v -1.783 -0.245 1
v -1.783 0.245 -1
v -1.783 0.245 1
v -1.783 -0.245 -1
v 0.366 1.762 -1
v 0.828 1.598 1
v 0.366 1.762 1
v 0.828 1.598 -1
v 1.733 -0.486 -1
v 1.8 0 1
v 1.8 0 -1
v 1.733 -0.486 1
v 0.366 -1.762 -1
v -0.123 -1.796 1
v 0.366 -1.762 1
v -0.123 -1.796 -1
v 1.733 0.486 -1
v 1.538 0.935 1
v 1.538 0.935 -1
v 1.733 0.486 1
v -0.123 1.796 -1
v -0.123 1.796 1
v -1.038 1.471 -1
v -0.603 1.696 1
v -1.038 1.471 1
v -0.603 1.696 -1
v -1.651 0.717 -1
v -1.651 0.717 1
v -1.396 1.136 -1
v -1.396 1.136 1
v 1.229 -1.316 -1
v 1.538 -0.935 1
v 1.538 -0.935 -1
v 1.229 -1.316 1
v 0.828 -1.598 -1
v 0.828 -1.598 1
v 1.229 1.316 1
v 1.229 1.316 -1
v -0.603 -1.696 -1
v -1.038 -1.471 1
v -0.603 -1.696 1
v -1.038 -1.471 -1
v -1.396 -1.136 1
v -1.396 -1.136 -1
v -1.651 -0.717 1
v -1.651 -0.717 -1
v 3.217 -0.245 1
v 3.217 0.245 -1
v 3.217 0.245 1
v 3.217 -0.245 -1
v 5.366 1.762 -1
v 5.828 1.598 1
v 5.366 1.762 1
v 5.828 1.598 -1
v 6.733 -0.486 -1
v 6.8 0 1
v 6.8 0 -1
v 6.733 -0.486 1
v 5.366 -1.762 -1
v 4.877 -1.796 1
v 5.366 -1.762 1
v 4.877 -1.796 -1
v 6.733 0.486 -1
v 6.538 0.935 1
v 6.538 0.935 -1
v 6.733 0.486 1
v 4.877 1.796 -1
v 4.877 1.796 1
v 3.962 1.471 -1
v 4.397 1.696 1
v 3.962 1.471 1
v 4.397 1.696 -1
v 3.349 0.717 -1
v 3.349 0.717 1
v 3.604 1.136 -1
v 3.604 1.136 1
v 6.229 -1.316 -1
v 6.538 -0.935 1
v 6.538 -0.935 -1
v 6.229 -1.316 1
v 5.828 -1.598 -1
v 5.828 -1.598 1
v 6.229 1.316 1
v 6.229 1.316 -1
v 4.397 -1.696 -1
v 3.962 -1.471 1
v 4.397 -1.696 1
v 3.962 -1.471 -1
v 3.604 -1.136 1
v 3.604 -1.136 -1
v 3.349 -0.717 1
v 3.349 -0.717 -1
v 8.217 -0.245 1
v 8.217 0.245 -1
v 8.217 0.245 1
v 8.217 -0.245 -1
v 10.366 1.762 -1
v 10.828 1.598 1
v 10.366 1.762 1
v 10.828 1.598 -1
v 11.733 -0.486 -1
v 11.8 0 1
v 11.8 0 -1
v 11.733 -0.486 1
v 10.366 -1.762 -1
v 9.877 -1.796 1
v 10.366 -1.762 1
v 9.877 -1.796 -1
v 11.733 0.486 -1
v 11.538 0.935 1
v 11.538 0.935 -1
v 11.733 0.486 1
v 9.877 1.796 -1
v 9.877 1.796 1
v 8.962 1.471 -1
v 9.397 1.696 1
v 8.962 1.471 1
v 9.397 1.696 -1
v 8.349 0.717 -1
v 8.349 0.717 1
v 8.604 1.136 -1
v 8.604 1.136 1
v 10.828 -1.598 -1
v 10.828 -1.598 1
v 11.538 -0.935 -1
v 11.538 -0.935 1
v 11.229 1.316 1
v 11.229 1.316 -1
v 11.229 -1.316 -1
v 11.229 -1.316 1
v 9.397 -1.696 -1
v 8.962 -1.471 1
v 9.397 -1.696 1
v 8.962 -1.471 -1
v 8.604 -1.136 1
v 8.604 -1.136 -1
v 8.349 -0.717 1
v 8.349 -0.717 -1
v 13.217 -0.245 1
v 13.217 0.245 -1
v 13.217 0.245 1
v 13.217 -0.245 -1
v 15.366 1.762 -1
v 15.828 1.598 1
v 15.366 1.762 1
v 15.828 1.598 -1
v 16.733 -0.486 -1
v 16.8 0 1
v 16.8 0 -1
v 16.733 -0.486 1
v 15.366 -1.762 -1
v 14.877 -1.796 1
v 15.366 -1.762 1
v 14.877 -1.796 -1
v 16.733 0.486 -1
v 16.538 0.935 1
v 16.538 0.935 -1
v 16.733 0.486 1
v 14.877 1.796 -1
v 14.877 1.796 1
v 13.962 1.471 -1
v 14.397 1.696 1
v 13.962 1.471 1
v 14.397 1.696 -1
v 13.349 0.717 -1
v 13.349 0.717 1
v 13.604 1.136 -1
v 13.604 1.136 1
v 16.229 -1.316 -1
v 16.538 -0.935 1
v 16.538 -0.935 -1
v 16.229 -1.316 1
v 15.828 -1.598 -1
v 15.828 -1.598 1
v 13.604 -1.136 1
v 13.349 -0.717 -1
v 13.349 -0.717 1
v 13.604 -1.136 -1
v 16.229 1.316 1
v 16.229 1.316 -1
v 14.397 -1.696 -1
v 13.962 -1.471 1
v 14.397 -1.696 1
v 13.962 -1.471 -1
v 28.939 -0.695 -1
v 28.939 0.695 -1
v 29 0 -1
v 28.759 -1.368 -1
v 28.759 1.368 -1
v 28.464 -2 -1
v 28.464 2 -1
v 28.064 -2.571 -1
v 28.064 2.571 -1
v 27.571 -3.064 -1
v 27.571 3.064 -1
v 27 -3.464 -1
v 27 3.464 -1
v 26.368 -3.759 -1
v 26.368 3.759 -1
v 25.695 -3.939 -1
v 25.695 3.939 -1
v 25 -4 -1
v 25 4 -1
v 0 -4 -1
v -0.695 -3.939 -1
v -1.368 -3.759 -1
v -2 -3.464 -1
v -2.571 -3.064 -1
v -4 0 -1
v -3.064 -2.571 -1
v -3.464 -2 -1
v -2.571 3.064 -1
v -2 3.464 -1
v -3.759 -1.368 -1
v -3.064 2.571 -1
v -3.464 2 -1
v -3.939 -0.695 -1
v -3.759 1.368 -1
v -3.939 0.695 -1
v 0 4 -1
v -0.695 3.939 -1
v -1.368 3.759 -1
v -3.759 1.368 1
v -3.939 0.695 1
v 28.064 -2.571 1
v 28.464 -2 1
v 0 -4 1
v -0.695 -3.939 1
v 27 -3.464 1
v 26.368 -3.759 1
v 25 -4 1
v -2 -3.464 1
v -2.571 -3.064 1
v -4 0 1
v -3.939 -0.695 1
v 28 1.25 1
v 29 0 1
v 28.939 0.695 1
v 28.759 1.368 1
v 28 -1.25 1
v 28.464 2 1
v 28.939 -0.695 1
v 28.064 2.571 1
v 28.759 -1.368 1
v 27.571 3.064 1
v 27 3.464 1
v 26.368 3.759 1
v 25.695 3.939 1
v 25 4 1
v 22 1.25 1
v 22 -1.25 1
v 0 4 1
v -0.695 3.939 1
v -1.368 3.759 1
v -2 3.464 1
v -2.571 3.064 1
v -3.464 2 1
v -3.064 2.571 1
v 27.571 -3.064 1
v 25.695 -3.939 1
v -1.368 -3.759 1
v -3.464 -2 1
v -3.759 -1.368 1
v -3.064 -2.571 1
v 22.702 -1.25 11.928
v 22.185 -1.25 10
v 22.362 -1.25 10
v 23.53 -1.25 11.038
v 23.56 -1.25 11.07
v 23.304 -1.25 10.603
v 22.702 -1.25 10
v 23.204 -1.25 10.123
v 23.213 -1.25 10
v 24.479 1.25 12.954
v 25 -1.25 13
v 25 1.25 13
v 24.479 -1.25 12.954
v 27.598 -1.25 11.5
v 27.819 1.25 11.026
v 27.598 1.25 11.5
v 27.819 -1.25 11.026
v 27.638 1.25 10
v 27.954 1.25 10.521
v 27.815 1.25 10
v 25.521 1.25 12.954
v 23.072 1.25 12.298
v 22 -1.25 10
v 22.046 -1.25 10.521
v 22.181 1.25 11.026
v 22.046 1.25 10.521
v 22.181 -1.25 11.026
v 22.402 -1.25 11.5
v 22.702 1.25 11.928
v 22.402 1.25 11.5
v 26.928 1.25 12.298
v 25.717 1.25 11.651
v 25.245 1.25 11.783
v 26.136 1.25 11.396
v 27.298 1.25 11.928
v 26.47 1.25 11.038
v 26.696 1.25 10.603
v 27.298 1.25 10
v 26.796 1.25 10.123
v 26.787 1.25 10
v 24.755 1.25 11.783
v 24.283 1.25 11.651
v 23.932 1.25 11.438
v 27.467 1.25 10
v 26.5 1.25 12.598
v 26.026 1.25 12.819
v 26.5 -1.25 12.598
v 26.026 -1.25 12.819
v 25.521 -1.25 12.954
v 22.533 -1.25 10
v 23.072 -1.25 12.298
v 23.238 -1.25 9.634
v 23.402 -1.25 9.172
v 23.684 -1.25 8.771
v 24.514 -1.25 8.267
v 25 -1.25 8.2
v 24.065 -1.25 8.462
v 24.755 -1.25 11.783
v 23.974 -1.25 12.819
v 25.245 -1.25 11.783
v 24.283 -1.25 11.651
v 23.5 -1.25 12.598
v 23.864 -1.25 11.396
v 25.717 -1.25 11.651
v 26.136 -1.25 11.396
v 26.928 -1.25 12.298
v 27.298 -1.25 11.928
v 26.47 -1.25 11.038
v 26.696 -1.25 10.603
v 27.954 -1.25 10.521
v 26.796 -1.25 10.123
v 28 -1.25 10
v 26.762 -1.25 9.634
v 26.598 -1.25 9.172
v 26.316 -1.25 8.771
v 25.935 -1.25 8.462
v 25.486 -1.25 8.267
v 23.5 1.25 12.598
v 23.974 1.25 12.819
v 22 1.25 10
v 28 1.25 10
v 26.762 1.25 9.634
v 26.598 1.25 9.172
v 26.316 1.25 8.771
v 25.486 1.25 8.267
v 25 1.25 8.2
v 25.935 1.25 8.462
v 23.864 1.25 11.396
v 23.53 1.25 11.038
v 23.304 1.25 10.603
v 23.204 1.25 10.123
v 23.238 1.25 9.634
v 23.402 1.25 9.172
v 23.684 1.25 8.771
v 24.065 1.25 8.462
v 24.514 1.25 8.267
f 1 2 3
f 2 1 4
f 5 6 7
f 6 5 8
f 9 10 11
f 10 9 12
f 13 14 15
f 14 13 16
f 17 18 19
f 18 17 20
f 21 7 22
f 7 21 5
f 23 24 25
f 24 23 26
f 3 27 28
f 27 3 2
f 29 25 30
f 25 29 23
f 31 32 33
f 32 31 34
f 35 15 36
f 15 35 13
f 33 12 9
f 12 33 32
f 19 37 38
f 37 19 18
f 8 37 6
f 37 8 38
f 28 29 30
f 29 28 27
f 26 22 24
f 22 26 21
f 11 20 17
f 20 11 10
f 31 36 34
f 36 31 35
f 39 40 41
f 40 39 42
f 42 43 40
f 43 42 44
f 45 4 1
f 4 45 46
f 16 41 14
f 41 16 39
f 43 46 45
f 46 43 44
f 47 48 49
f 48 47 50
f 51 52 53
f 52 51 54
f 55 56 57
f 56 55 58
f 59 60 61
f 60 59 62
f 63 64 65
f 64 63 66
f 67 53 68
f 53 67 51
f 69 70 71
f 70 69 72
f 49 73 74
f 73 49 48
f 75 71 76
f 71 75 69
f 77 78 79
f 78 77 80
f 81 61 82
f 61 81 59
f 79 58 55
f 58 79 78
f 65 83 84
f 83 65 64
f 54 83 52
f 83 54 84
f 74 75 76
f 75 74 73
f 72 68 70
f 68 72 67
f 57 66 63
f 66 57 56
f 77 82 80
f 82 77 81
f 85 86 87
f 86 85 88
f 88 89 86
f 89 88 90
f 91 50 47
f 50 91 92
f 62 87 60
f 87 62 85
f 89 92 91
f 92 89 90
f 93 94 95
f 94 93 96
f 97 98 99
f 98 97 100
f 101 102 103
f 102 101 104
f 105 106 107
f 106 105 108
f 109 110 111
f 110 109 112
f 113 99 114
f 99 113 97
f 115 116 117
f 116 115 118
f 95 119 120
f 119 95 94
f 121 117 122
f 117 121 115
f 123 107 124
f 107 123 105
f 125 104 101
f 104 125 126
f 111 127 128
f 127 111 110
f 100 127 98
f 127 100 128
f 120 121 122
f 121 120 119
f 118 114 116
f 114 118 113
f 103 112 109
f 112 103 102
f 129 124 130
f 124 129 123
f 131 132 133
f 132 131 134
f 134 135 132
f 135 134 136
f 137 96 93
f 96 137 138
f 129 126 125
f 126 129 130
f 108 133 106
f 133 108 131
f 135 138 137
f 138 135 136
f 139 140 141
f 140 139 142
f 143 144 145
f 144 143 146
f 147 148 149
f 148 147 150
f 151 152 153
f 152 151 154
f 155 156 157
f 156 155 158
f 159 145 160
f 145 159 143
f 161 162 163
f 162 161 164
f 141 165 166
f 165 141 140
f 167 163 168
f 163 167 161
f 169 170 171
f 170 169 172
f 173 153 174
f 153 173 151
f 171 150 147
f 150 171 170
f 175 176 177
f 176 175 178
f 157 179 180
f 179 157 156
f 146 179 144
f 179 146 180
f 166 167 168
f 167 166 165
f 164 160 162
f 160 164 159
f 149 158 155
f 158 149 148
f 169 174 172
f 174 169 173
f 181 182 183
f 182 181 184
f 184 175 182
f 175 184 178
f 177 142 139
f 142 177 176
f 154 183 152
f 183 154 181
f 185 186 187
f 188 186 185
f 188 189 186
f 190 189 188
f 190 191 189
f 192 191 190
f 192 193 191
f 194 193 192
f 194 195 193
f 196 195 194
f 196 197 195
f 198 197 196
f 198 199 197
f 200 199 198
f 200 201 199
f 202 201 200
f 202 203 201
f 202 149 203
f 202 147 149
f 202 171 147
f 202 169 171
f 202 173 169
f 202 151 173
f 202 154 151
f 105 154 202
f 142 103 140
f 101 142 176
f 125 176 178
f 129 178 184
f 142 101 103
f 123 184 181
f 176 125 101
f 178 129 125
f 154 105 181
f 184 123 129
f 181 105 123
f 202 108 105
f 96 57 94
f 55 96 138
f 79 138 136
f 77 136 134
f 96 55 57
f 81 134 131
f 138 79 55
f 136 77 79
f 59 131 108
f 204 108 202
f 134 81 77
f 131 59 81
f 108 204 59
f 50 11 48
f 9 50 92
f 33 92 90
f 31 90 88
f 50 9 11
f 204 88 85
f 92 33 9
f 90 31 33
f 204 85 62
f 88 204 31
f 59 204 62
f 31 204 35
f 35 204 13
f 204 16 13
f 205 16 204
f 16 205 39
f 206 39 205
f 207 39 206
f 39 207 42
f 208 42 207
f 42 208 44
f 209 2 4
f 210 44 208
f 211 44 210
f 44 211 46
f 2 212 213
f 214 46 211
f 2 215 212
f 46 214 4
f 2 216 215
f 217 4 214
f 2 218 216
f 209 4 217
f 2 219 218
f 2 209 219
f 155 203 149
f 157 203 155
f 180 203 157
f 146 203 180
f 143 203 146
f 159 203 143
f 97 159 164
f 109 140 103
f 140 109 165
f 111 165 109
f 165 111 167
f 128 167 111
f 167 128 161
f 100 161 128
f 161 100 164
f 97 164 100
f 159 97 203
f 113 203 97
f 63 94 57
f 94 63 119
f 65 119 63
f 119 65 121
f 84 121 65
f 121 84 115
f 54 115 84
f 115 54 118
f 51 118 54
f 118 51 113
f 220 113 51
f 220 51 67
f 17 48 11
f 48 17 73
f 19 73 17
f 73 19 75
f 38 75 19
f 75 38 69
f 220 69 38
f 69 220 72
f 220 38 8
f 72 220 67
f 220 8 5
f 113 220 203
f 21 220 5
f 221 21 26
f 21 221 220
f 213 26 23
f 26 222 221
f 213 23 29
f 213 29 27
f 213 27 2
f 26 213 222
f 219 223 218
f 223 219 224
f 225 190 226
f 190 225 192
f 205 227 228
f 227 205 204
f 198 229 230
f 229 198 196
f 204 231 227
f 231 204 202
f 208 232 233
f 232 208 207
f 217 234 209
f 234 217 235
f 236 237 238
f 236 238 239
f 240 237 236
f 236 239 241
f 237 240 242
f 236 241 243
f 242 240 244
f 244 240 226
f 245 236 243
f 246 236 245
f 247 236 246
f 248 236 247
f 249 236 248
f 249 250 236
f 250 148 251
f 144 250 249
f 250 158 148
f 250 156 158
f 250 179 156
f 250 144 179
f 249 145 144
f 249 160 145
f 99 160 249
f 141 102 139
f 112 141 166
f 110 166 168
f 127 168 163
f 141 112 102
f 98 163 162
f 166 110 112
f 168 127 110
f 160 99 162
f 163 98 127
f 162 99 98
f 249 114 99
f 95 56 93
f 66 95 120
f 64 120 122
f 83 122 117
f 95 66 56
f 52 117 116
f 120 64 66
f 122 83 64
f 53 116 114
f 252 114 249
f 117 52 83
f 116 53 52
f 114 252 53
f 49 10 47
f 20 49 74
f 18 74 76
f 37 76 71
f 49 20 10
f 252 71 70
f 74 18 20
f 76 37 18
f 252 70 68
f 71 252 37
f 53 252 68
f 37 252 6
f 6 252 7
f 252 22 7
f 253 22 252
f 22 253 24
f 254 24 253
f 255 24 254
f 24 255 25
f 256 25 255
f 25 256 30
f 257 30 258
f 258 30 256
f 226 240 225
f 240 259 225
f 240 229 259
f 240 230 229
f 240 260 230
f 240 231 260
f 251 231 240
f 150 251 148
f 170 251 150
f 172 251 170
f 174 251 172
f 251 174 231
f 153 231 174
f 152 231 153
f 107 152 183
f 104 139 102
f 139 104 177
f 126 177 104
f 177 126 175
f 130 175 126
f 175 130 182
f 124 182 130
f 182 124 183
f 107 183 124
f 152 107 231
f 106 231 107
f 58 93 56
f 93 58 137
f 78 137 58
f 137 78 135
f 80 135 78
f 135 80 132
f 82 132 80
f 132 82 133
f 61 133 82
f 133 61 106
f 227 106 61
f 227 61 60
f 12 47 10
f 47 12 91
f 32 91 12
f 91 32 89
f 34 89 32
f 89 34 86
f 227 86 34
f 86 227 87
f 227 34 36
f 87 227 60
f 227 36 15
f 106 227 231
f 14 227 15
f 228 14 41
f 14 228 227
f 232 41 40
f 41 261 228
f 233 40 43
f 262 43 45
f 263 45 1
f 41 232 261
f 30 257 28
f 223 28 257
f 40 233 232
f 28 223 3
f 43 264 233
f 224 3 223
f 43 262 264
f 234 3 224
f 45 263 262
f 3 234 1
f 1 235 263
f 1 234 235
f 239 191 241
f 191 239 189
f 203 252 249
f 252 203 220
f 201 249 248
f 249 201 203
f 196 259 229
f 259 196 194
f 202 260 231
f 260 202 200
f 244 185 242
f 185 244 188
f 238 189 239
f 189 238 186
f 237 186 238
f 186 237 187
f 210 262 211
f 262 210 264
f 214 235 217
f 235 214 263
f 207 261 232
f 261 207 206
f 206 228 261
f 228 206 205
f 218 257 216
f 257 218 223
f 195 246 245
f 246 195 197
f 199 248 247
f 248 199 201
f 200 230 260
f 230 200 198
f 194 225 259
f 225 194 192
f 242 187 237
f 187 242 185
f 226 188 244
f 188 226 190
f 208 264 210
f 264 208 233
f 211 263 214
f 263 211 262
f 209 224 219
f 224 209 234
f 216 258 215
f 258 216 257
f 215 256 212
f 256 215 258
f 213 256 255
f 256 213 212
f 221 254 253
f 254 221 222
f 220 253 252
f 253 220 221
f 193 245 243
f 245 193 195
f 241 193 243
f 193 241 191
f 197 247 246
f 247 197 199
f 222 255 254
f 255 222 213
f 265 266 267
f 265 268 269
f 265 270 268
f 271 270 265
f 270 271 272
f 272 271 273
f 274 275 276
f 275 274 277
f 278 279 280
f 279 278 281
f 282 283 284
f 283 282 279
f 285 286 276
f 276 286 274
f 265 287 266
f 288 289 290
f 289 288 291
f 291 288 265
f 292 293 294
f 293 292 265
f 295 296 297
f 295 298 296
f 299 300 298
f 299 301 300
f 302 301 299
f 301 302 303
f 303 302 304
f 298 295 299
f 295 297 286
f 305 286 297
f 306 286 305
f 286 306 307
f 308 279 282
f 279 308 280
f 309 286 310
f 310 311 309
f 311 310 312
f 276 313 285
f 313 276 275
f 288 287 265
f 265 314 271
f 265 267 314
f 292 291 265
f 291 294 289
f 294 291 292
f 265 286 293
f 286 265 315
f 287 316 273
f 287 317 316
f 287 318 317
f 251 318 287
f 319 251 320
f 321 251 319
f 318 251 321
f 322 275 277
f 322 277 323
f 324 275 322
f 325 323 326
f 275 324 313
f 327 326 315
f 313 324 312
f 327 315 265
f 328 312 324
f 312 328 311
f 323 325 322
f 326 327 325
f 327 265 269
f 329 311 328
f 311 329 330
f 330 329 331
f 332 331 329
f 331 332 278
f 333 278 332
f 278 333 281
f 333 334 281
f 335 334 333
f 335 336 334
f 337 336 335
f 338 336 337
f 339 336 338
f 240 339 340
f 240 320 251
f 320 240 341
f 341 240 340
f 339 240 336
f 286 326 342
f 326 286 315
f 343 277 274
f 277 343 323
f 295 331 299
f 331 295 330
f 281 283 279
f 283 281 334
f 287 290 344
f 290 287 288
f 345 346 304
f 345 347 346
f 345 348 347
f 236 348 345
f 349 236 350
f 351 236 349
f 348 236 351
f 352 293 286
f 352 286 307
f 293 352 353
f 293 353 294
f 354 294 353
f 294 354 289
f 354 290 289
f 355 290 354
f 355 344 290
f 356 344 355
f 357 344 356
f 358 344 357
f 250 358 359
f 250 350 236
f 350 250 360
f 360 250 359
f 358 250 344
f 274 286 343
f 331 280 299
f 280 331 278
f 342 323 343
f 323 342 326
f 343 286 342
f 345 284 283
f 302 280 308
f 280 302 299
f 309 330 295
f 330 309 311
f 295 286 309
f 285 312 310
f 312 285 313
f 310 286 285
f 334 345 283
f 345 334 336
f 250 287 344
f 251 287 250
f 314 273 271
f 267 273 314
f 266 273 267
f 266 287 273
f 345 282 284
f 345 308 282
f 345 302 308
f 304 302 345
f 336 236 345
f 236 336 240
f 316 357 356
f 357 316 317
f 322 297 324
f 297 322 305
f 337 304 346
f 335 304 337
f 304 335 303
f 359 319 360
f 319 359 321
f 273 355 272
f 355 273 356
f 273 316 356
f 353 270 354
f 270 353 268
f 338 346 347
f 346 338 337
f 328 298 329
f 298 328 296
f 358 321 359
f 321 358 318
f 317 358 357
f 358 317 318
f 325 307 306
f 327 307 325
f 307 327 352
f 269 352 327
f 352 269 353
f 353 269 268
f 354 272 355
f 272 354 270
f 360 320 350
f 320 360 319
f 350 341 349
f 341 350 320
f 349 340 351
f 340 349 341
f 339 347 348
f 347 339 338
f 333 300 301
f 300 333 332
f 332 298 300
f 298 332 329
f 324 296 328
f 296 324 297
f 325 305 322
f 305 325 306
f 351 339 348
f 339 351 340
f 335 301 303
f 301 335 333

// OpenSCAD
$fa=10; $fs=0.5;

difference()
{

    hull()
        {
            cylinder(h=2, r=4, center=true);
            translate([25, 0, 0]) cylinder(h=2, r=4, center=true);
        }
        
    union()
        {
            cylinder(h=2.01, r=1.8, center=true);
            translate([5,0,0]) cylinder(h=2.01, r=1.8, center=true);
            translate([10,0,0]) cylinder(h=2.01, r=1.8, center=true);
            translate([15,0,0]) cylinder(h=2.01, r=1.8, center=true);
        }
        
}

difference()
{
    union()
    {
        translate([25, 0, 10]) rotate([0,90,90]) cylinder(h=2.5, r=3, center=true);
        translate([25, 0, 5]) cube([6, 2.5, 10], center=true);
    }
    
    translate([25, 0, 10]) rotate([0,90,90]) cylinder(h=2.51, r=1.8, center=true);
}
